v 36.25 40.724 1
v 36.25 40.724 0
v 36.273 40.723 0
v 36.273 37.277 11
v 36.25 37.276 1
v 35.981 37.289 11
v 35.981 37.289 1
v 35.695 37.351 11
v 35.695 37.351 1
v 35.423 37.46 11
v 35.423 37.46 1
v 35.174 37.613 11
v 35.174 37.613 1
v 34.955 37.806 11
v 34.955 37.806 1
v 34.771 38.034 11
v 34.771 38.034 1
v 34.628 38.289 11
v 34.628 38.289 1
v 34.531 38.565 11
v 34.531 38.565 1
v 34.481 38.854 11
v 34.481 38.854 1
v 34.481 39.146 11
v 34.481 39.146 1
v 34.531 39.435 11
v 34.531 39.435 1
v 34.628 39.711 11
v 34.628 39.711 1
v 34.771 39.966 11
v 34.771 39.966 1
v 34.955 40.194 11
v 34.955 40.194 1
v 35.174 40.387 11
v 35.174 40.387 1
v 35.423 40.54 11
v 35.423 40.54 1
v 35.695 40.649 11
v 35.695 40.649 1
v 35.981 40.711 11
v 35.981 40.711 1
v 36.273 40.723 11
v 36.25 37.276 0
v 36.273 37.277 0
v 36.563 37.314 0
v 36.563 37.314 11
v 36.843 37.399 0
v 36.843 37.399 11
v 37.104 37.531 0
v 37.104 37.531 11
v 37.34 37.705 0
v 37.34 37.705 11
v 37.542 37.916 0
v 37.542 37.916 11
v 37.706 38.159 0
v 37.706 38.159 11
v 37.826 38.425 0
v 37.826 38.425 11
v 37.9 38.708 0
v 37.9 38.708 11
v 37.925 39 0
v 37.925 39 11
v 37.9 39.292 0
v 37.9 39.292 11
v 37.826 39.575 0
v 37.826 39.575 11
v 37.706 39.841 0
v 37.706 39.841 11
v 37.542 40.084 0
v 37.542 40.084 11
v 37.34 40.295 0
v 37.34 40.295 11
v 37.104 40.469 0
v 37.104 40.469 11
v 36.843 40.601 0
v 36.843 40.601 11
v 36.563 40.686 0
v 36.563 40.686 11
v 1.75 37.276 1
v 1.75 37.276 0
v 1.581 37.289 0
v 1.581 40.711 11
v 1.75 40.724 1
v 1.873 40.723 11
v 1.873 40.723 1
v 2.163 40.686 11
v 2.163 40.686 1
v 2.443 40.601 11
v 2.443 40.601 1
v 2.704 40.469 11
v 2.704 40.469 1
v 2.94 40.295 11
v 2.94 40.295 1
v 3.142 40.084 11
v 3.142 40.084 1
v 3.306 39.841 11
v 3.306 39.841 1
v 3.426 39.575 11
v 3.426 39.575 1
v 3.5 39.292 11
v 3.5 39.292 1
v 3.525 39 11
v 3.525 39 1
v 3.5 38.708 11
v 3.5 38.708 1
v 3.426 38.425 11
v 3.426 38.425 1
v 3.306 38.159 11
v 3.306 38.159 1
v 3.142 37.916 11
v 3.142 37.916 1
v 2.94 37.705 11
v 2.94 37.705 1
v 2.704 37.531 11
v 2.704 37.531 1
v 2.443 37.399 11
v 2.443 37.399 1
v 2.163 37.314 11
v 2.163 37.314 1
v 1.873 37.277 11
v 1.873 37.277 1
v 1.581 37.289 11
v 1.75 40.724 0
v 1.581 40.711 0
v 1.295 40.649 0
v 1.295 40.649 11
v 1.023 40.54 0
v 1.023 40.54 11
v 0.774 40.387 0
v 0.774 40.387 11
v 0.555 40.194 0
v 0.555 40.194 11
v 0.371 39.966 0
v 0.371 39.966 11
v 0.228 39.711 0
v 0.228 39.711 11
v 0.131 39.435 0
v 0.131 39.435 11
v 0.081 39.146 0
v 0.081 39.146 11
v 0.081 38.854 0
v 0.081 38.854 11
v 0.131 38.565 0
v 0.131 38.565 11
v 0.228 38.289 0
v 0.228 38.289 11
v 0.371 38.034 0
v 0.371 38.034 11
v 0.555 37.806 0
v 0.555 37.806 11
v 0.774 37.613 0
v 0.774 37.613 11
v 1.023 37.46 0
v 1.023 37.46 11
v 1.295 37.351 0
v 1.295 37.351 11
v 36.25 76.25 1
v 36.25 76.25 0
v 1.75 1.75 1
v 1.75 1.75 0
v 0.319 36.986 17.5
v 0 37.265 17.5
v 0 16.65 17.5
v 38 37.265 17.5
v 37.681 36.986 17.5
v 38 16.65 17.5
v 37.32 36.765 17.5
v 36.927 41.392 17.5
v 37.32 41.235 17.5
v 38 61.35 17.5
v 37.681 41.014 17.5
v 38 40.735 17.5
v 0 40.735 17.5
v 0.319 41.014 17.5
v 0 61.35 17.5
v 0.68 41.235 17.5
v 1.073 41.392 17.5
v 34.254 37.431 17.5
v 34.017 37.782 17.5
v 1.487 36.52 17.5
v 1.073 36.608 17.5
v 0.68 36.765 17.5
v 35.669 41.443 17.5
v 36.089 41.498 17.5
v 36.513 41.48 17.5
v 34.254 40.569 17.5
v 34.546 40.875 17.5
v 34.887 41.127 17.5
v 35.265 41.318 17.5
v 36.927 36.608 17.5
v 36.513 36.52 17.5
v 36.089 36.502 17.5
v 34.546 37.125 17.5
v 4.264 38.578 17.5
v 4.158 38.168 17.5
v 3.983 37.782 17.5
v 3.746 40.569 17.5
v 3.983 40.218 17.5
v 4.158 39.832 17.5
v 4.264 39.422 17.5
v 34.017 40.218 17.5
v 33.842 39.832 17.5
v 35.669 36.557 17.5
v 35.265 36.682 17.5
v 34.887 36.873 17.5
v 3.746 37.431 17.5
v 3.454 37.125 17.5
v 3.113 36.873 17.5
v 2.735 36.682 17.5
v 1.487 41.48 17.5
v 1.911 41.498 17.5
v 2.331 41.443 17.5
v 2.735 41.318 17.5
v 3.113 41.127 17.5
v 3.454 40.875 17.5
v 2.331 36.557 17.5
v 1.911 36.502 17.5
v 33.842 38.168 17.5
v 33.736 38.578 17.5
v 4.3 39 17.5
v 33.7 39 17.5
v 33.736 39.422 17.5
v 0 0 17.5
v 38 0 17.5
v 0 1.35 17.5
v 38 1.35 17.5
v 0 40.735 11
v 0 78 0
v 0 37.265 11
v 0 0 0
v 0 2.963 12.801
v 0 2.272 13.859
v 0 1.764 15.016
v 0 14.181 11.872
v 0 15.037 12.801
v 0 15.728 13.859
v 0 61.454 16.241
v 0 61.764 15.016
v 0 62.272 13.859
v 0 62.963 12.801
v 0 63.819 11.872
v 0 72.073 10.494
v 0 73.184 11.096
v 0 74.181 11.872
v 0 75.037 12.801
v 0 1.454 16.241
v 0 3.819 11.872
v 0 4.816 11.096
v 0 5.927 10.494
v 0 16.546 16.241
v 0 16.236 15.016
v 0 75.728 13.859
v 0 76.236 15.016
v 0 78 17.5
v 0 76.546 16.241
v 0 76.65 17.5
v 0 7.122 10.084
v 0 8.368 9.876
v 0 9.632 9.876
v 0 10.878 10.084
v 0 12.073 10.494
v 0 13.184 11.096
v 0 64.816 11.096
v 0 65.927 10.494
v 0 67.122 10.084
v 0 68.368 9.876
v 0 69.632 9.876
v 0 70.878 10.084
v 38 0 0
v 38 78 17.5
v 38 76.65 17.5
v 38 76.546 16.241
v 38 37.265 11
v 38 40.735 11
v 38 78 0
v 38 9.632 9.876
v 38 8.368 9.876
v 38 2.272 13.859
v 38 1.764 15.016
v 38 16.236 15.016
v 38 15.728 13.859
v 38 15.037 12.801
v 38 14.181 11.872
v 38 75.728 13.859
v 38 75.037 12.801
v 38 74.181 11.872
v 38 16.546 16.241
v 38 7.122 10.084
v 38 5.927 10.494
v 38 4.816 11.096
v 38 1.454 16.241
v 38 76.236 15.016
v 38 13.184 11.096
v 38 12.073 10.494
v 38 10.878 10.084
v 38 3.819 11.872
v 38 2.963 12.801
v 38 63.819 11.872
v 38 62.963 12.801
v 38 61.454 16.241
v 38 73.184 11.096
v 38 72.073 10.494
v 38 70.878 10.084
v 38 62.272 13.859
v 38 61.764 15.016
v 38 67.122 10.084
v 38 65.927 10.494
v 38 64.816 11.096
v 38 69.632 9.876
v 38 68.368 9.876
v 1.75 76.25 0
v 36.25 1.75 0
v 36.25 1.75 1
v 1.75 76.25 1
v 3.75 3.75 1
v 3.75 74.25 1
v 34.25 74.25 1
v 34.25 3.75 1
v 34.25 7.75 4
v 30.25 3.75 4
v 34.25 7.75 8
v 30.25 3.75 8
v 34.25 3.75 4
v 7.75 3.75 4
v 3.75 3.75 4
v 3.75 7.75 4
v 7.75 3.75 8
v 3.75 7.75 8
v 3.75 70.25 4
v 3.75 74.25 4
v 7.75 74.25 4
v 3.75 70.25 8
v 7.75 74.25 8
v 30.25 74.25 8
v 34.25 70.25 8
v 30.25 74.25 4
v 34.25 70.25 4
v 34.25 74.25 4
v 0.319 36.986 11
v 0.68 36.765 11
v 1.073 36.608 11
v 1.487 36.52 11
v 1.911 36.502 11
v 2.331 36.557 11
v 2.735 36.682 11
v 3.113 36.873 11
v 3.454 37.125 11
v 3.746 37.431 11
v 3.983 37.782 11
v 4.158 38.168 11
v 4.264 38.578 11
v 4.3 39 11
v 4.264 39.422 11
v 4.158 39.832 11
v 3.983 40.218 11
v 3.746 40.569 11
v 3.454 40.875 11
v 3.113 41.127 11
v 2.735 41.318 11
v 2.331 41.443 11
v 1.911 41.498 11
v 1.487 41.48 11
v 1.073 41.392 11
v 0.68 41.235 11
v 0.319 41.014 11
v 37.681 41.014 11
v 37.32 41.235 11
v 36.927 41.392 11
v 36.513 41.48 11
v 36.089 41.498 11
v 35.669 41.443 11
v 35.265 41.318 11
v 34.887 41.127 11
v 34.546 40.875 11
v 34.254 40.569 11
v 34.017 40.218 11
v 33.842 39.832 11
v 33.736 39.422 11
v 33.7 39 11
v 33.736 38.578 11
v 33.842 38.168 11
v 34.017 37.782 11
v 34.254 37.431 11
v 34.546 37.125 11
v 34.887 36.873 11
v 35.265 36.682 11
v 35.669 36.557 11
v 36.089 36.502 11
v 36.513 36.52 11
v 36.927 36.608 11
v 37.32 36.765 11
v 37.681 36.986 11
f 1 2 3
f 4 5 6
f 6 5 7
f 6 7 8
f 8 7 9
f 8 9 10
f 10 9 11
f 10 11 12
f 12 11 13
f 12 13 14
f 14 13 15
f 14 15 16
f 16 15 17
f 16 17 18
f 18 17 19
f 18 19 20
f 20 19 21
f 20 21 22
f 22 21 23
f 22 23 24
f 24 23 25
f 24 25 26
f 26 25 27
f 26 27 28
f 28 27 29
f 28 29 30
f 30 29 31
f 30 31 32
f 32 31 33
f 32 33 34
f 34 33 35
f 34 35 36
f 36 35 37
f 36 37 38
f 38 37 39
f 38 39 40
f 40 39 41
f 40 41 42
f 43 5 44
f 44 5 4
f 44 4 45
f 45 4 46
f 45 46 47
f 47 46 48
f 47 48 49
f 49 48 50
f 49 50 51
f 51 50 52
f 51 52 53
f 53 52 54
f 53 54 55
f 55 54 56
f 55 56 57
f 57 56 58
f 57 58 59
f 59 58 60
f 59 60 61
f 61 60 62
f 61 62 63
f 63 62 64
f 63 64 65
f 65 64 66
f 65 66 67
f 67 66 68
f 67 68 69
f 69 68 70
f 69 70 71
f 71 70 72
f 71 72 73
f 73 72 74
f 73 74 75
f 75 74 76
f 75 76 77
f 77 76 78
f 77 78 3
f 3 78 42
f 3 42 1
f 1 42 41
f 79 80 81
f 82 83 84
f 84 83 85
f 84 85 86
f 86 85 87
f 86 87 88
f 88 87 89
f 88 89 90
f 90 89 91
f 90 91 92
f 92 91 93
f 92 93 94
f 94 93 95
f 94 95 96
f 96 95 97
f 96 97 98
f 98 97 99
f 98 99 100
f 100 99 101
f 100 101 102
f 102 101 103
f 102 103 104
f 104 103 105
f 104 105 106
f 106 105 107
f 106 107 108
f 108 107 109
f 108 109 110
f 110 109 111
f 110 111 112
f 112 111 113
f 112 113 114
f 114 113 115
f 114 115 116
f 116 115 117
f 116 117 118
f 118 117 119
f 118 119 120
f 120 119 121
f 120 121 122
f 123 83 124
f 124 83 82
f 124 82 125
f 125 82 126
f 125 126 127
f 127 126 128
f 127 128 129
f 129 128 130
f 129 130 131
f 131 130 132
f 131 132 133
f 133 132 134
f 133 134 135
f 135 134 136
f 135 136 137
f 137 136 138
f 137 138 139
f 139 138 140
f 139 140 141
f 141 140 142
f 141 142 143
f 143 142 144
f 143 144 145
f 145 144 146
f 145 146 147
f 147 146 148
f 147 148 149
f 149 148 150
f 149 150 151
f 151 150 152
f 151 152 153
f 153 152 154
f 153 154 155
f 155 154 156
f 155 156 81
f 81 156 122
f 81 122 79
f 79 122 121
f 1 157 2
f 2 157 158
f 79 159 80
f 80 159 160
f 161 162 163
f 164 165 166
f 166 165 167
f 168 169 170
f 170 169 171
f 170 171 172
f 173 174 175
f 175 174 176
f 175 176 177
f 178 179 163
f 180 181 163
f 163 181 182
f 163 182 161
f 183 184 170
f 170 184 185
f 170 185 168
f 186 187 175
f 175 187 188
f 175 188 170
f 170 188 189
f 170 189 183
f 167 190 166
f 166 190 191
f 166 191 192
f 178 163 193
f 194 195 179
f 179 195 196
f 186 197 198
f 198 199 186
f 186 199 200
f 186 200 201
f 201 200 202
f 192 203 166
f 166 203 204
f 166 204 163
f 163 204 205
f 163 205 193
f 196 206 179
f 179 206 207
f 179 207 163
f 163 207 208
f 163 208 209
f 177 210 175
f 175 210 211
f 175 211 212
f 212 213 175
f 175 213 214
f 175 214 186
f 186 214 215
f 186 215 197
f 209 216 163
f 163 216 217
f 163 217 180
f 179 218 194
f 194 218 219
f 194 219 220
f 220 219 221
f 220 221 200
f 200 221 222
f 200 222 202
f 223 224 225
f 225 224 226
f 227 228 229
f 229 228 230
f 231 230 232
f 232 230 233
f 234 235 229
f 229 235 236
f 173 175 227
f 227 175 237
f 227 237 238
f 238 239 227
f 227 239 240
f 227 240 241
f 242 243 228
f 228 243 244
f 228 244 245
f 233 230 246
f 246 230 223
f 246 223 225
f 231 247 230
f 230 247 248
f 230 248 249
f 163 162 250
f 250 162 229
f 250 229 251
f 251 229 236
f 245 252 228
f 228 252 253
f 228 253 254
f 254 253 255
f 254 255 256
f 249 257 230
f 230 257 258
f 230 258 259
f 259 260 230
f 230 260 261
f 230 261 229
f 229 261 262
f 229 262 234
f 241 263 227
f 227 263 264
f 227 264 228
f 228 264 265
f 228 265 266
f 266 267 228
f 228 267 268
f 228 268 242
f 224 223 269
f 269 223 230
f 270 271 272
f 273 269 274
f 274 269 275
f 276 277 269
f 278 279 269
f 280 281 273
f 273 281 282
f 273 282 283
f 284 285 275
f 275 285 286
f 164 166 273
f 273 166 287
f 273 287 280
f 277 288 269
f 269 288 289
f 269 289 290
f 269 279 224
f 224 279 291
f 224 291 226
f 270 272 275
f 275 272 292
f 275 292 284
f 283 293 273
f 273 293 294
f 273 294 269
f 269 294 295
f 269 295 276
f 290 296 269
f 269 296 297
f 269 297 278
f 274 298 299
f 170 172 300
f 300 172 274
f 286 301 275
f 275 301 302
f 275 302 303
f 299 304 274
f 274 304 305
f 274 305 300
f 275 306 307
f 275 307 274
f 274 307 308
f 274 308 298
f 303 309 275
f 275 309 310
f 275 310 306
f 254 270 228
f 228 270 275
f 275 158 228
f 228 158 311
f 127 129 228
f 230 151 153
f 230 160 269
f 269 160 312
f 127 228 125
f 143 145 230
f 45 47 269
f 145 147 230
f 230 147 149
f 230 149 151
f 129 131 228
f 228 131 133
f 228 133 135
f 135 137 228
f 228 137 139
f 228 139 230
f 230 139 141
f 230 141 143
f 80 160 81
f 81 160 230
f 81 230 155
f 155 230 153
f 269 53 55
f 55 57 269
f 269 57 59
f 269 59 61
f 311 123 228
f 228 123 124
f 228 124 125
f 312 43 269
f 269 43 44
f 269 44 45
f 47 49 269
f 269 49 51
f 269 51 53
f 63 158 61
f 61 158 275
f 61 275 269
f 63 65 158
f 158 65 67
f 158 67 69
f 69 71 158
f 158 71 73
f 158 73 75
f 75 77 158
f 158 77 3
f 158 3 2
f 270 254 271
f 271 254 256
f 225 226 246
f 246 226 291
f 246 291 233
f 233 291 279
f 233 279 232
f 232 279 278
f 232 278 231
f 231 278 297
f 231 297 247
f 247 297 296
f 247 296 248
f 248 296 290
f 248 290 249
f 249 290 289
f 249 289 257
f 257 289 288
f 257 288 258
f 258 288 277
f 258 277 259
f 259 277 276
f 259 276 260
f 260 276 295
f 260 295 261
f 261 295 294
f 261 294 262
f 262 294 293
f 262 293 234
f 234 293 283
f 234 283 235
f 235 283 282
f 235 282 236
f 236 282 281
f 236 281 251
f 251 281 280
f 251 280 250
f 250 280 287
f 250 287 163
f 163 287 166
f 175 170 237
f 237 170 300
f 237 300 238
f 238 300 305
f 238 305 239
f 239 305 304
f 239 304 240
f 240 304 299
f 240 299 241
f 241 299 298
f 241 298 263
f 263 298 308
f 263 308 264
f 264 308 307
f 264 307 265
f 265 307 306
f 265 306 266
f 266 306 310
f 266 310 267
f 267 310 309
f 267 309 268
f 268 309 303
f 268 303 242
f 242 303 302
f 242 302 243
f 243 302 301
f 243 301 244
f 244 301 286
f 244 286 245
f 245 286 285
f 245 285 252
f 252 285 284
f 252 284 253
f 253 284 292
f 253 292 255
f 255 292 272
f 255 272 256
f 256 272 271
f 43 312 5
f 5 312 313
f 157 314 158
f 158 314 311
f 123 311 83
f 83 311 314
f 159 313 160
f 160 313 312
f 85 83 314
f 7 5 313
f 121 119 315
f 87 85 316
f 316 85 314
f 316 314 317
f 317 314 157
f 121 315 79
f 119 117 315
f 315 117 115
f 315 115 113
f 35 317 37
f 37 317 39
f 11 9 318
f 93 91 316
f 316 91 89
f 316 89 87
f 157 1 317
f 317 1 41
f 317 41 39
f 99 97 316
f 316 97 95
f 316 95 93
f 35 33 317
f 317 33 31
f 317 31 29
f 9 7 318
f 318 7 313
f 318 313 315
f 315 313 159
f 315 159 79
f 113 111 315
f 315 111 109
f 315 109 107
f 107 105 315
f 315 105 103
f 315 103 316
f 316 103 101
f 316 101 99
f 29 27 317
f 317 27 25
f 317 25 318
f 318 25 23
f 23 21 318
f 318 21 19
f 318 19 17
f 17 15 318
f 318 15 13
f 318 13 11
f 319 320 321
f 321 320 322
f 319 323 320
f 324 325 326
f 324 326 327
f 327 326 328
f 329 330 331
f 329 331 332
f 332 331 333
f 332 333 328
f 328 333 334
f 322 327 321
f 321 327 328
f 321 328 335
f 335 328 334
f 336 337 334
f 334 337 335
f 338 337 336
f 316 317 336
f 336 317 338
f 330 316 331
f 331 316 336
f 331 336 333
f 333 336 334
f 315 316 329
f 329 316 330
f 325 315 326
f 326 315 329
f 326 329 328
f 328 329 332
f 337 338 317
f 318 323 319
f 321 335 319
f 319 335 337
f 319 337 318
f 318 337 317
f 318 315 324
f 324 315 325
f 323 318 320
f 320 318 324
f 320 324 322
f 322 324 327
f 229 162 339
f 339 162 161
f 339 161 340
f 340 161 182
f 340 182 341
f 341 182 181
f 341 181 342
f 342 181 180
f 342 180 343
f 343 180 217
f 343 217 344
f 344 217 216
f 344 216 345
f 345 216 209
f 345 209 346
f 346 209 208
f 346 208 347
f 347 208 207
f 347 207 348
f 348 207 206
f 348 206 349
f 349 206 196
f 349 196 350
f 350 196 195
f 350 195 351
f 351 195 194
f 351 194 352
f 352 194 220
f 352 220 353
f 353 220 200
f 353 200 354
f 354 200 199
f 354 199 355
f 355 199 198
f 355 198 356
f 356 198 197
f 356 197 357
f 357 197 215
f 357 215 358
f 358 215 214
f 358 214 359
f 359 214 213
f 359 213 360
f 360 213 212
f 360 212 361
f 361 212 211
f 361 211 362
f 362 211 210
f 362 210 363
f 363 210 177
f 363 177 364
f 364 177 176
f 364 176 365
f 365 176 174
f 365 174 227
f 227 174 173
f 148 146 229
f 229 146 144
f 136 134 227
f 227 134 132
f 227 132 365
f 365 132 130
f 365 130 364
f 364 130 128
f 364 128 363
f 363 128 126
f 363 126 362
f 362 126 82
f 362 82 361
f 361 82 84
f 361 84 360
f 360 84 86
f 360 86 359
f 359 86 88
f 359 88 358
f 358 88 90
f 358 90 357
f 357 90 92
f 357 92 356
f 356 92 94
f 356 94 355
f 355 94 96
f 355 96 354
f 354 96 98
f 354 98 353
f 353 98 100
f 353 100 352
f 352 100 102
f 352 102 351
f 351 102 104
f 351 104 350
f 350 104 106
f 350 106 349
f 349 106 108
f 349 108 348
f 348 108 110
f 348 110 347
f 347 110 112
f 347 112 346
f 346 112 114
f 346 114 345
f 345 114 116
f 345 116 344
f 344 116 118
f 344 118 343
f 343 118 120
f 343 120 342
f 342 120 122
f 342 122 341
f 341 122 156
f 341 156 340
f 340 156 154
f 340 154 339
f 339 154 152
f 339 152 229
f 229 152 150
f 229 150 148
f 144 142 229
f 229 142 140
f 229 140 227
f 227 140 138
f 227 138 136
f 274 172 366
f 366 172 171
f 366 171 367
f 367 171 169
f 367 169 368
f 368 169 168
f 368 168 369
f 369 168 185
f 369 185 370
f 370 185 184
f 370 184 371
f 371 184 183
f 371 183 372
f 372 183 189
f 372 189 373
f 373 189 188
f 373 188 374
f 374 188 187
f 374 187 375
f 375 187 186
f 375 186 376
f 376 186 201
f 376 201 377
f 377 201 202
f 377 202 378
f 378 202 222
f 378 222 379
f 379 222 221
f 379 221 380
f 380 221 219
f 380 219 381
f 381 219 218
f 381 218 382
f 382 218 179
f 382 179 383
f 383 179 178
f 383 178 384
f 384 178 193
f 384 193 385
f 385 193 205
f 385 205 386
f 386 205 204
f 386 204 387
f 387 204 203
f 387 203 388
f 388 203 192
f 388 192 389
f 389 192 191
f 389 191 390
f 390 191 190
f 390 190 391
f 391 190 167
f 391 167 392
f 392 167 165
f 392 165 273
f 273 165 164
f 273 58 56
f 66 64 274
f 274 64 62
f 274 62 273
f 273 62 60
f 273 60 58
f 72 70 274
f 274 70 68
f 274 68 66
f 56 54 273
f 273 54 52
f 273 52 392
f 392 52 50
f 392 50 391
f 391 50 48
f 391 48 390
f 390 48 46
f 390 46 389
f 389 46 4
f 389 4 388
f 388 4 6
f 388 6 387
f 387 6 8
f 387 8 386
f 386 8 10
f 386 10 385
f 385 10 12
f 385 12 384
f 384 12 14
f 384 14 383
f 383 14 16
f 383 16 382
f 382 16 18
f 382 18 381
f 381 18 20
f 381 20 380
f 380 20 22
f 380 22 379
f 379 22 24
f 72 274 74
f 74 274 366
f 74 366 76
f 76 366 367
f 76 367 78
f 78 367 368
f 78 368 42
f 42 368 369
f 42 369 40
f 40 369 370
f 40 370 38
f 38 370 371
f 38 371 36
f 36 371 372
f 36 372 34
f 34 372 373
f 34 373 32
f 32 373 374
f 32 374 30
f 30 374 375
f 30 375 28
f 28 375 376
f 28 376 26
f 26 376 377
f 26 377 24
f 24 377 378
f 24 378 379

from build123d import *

# Parameters (mm, degrees)
SKETCH1_W           = 38
SKETCH1_H           = 78
BOSS_EXTRUDE1_DEPTH = 10
SKETCH2_W           = 30.5
SKETCH2_H           = 70.5
CUT_EXTRUDE1_DEPTH  = 8
BOSS_EXTRUDE2_DEPTH = 4
SKETCH4_W           = 38
SKETCH4_H           = 78
BOSS_EXTRUDE3_DEPTH = 7.5
SKETCH5_R           = 7.65
CUT_EXTRUDE2_DEPTH  = 89.511298714
SKETCH6_W           = 34.5
SKETCH6_H           = 74.5
SKETCH6_W_2         = 30.5
SKETCH6_H_2         = 70.5
CUT_EXTRUDE3_DEPTH  = 1
SKETCH7_R           = 1.725
CUT_EXTRUDE5_DEPTH  = 89.511298714
SKETCH8_R           = 2.5
CUT_EXTRUDE6_DEPTH  = 6.5


with BuildPart() as part:
    # Sketch1 → Boss-Extrude1 (new body)
    with BuildSketch(Plane.XY):
        with Locations((19, 39)):
            Rectangle(SKETCH1_W, SKETCH1_H)
    extrude(amount=BOSS_EXTRUDE1_DEPTH)

    # Sketch2 → Cut-Extrude1 (cut)
    with BuildSketch(Plane(origin=(0, 0, 0), x_dir=(-1, 0, 0), z_dir=(0, 0, -1))):
        with Locations((-19, 39)):
            Rectangle(SKETCH2_W, SKETCH2_H)
    extrude(amount=-CUT_EXTRUDE1_DEPTH, mode=Mode.SUBTRACT)

    # Sketch3 → Boss-Extrude2 (add)
    with BuildSketch(Plane(origin=(0, 0, 8), x_dir=(-1, 0, 0), z_dir=(0, 0, -1))):
        Polygon((-30.25, 74.25), (-34.25, 70.25), (-34.25, 74.25), align=None)
        Polygon((-3.75, 70.25), (-3.75, 74.25), (-7.75, 74.25), align=None)
        Polygon((-3.75, 7.75), (-3.75, 3.75), (-7.75, 3.75), align=None)
        Polygon((-34.25, 7.75), (-34.25, 3.75), (-30.25, 3.75), align=None)
    extrude(amount=BOSS_EXTRUDE2_DEPTH)

    # Sketch4 → Boss-Extrude3 (add)
    with BuildSketch(Plane.XY.offset(10)):
        with Locations((19, 39)):
            Rectangle(SKETCH4_W, SKETCH4_H)
    extrude(amount=BOSS_EXTRUDE3_DEPTH)

    # Sketch5 → Cut-Extrude2 (cut, through all)
    with BuildSketch(Plane(origin=(38, 0, 0), x_dir=(0, 0, -1), z_dir=(1, 0, 0))):
        with Locations((-17.5, 9)):
            Circle(SKETCH5_R)
        with Locations((-17.5, 69)):
            Circle(SKETCH5_R)
    extrude(amount=-CUT_EXTRUDE2_DEPTH, mode=Mode.SUBTRACT)

    # Sketch6 → Cut-Extrude3 (cut)
    with BuildSketch(Plane(origin=(0, 0, 0), x_dir=(-1, 0, 0), z_dir=(0, 0, -1))):
        with Locations((-19, 39)):
            Rectangle(SKETCH6_W, SKETCH6_H)
        with Locations((-19, 39)):
            Rectangle(SKETCH6_W_2, SKETCH6_H_2, mode=Mode.SUBTRACT)
    extrude(amount=-CUT_EXTRUDE3_DEPTH, mode=Mode.SUBTRACT)

    # Sketch7 → Cut-Extrude5 (cut, through all)
    with BuildSketch(Plane.XY.offset(17.5)):
        with Locations((1.8, 39)):
            Circle(SKETCH7_R)
        with Locations((36.2, 39)):
            Circle(SKETCH7_R)
    extrude(amount=-CUT_EXTRUDE5_DEPTH, mode=Mode.SUBTRACT)

    # Sketch8 → Cut-Extrude6 (cut)
    with BuildSketch(Plane.XY.offset(17.5)):
        with Locations((1.8, 39)):
            Circle(SKETCH8_R)
        with Locations((36.2, 39)):
            Circle(SKETCH8_R)
    extrude(amount=-CUT_EXTRUDE6_DEPTH, mode=Mode.SUBTRACT)


solid = part.part
